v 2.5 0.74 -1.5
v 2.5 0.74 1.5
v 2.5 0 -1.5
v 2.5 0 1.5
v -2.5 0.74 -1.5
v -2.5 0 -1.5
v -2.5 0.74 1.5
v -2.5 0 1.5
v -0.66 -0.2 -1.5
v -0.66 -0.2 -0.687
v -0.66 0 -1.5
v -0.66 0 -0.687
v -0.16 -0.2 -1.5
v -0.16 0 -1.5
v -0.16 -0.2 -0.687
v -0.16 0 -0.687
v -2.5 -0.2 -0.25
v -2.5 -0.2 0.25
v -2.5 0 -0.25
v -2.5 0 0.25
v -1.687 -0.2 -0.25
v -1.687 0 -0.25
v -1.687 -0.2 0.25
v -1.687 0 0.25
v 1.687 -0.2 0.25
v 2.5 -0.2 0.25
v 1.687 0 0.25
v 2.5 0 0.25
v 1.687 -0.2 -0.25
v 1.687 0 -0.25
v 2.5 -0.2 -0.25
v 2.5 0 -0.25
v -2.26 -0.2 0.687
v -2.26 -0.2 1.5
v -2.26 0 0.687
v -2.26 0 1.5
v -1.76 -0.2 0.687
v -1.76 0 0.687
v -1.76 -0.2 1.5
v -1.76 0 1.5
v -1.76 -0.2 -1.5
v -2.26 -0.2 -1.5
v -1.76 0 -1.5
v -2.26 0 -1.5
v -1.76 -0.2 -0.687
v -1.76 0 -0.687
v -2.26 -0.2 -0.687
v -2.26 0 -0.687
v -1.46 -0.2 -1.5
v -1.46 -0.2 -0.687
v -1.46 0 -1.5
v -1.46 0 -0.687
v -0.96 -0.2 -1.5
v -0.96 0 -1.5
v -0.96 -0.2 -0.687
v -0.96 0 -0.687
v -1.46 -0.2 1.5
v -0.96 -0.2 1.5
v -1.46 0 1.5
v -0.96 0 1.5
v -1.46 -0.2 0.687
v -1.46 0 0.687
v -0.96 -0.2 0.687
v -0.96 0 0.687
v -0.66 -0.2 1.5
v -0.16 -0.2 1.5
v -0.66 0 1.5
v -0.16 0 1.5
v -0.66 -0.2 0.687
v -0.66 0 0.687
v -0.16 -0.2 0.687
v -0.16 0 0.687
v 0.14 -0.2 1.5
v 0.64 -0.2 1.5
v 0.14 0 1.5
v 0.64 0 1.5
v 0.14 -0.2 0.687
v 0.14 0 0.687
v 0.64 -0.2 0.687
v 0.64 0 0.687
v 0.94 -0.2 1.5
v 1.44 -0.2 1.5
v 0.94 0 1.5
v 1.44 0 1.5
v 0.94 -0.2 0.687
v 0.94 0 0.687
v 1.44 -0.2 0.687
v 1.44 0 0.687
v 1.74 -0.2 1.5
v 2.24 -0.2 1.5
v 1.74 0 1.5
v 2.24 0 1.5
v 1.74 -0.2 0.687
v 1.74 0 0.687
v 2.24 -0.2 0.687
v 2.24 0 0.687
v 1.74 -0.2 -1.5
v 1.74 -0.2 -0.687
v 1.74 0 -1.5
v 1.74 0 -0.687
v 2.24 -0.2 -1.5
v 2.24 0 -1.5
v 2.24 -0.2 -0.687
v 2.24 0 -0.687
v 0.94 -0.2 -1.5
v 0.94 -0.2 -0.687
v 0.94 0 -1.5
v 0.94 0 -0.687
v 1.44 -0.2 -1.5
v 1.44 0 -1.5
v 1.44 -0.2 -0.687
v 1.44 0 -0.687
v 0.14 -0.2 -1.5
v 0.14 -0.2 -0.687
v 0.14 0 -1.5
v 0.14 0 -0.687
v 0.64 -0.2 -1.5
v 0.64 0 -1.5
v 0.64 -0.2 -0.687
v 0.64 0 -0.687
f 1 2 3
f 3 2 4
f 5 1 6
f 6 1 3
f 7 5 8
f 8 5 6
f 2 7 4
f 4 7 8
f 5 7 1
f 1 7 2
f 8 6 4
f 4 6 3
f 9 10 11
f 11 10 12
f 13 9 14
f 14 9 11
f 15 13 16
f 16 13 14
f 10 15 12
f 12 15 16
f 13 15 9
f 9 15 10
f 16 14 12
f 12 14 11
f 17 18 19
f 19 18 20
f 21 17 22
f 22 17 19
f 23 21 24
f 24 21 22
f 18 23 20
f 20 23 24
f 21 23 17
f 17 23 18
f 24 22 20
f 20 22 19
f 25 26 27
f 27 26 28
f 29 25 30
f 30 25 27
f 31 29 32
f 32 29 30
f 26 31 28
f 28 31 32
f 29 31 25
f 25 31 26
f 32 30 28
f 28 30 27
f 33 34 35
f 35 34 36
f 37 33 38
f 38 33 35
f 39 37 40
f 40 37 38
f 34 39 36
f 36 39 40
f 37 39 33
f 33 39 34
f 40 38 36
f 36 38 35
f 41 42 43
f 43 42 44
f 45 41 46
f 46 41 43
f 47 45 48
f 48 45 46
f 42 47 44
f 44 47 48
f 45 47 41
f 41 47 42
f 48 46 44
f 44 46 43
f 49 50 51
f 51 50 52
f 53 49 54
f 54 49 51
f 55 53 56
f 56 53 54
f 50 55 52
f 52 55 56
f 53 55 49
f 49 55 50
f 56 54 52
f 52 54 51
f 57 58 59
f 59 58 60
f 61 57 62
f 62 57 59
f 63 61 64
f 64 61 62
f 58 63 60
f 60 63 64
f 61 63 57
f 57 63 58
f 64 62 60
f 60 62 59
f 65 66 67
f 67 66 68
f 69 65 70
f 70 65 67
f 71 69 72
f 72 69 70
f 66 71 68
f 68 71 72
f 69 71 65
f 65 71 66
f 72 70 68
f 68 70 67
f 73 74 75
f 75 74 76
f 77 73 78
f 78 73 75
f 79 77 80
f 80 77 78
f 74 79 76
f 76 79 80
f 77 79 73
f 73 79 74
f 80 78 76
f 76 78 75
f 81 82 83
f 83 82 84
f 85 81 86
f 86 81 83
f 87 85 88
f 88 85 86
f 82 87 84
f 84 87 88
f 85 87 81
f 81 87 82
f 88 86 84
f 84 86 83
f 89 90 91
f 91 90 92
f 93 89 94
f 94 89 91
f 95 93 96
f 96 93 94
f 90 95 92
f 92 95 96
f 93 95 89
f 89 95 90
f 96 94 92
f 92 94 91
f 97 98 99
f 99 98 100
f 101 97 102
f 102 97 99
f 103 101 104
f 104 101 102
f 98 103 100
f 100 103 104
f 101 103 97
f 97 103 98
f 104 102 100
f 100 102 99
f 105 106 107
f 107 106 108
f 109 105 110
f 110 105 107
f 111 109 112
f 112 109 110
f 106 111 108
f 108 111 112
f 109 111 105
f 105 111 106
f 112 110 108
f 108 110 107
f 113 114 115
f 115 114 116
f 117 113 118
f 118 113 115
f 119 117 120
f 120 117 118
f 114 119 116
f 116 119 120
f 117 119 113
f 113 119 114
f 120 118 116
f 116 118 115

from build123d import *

# Parameters (mm, degrees)
SKETCH1_W              = 5
SKETCH1_H              = 3
BOSS_EXTRUDE1_DEPTH    = 0.74
SKETCH2_W              = 0.813
SKETCH2_H              = 0.5
BOSS_EXTRUDE2_DEPTH    = 0.2
BOSS_EXTRUDE2_2_DEPTH  = 0.2
SKETCH2_W_2            = 0.5
SKETCH2_H_2            = 0.813
BOSS_EXTRUDE2_3_DEPTH  = 0.2
BOSS_EXTRUDE2_4_DEPTH  = 0.2
BOSS_EXTRUDE2_5_DEPTH  = 0.2
BOSS_EXTRUDE2_6_DEPTH  = 0.2
BOSS_EXTRUDE2_7_DEPTH  = 0.2
BOSS_EXTRUDE2_8_DEPTH  = 0.2
BOSS_EXTRUDE2_9_DEPTH  = 0.2
BOSS_EXTRUDE2_10_DEPTH = 0.2
BOSS_EXTRUDE2_11_DEPTH = 0.2
BOSS_EXTRUDE2_12_DEPTH = 0.2
BOSS_EXTRUDE2_13_DEPTH = 0.2
BOSS_EXTRUDE2_14_DEPTH = 0.2


with BuildPart() as part:
    # Sketch1 → Boss-Extrude1 (new body)
    with BuildSketch(Plane(origin=(0, 0, 0), x_dir=(1, 0, 0), z_dir=(0, 1, 0))):
        Rectangle(SKETCH1_W, SKETCH1_H)
    extrude(amount=BOSS_EXTRUDE1_DEPTH)


with BuildPart() as body_2:
    # Sketch2 → Boss-Extrude2 (new body)
    with BuildSketch(Plane.XZ):
        with Locations((2.0935, 0)):
            Rectangle(SKETCH2_W, SKETCH2_H)
    extrude(amount=BOSS_EXTRUDE2_DEPTH)


with BuildPart() as body_3:
    # Sketch2 → Boss-Extrude2 2 (new body)
    with BuildSketch(Plane.XZ):
        with Locations((-2.0935, 0)):
            Rectangle(SKETCH2_W, SKETCH2_H)
    extrude(amount=BOSS_EXTRUDE2_2_DEPTH)


with BuildPart() as body_4:
    # Sketch2 → Boss-Extrude2 3 (new body)
    with BuildSketch(Plane.XZ):
        with Locations((-2.01, 1.0935)):
            Rectangle(SKETCH2_W_2, SKETCH2_H_2)
    extrude(amount=BOSS_EXTRUDE2_3_DEPTH)


with BuildPart() as body_5:
    # Sketch2 → Boss-Extrude2 4 (new body)
    with BuildSketch(Plane.XZ):
        with Locations((-1.21, 1.0935)):
            Rectangle(SKETCH2_W_2, SKETCH2_H_2)
    extrude(amount=BOSS_EXTRUDE2_4_DEPTH)


with BuildPart() as body_6:
    # Sketch2 → Boss-Extrude2 5 (new body)
    with BuildSketch(Plane.XZ):
        with Locations((-0.41, 1.0935)):
            Rectangle(SKETCH2_W_2, SKETCH2_H_2)
    extrude(amount=BOSS_EXTRUDE2_5_DEPTH)


with BuildPart() as body_7:
    # Sketch2 → Boss-Extrude2 6 (new body)
    with BuildSketch(Plane.XZ):
        with Locations((0.39, 1.0935)):
            Rectangle(SKETCH2_W_2, SKETCH2_H_2)
    extrude(amount=BOSS_EXTRUDE2_6_DEPTH)


with BuildPart() as body_8:
    # Sketch2 → Boss-Extrude2 7 (new body)
    with BuildSketch(Plane.XZ):
        with Locations((1.19, 1.0935)):
            Rectangle(SKETCH2_W_2, SKETCH2_H_2)
    extrude(amount=BOSS_EXTRUDE2_7_DEPTH)


with BuildPart() as body_9:
    # Sketch2 → Boss-Extrude2 8 (new body)
    with BuildSketch(Plane.XZ):
        with Locations((1.99, 1.0935)):
            Rectangle(SKETCH2_W_2, SKETCH2_H_2)
    extrude(amount=BOSS_EXTRUDE2_8_DEPTH)


with BuildPart() as body_10:
    # Sketch2 → Boss-Extrude2 9 (new body)
    with BuildSketch(Plane.XZ):
        with Locations((1.99, -1.0935)):
            Rectangle(SKETCH2_W_2, SKETCH2_H_2)
    extrude(amount=BOSS_EXTRUDE2_9_DEPTH)


with BuildPart() as body_11:
    # Sketch2 → Boss-Extrude2 10 (new body)
    with BuildSketch(Plane.XZ):
        with Locations((1.19, -1.0935)):
            Rectangle(SKETCH2_W_2, SKETCH2_H_2)
    extrude(amount=BOSS_EXTRUDE2_10_DEPTH)


with BuildPart() as body_12:
    # Sketch2 → Boss-Extrude2 11 (new body)
    with BuildSketch(Plane.XZ):
        with Locations((0.39, -1.0935)):
            Rectangle(SKETCH2_W_2, SKETCH2_H_2)
    extrude(amount=BOSS_EXTRUDE2_11_DEPTH)


with BuildPart() as body_13:
    # Sketch2 → Boss-Extrude2 12 (new body)
    with BuildSketch(Plane.XZ):
        with Locations((-0.41, -1.0935)):
            Rectangle(SKETCH2_W_2, SKETCH2_H_2)
    extrude(amount=BOSS_EXTRUDE2_12_DEPTH)


with BuildPart() as body_14:
    # Sketch2 → Boss-Extrude2 13 (new body)
    with BuildSketch(Plane.XZ):
        with Locations((-1.21, -1.0935)):
            Rectangle(SKETCH2_W_2, SKETCH2_H_2)
    extrude(amount=BOSS_EXTRUDE2_13_DEPTH)


with BuildPart() as body_15:
    # Sketch2 → Boss-Extrude2 14 (new body)
    with BuildSketch(Plane.XZ):
        with Locations((-2.01, -1.0935)):
            Rectangle(SKETCH2_W_2, SKETCH2_H_2)
    extrude(amount=BOSS_EXTRUDE2_14_DEPTH)


solid = Compound([part.part, body_2.part, body_3.part, body_4.part, body_5.part, body_6.part, body_7.part, body_8.part, body_9.part, body_10.part, body_11.part, body_12.part, body_13.part, body_14.part, body_15.part])
